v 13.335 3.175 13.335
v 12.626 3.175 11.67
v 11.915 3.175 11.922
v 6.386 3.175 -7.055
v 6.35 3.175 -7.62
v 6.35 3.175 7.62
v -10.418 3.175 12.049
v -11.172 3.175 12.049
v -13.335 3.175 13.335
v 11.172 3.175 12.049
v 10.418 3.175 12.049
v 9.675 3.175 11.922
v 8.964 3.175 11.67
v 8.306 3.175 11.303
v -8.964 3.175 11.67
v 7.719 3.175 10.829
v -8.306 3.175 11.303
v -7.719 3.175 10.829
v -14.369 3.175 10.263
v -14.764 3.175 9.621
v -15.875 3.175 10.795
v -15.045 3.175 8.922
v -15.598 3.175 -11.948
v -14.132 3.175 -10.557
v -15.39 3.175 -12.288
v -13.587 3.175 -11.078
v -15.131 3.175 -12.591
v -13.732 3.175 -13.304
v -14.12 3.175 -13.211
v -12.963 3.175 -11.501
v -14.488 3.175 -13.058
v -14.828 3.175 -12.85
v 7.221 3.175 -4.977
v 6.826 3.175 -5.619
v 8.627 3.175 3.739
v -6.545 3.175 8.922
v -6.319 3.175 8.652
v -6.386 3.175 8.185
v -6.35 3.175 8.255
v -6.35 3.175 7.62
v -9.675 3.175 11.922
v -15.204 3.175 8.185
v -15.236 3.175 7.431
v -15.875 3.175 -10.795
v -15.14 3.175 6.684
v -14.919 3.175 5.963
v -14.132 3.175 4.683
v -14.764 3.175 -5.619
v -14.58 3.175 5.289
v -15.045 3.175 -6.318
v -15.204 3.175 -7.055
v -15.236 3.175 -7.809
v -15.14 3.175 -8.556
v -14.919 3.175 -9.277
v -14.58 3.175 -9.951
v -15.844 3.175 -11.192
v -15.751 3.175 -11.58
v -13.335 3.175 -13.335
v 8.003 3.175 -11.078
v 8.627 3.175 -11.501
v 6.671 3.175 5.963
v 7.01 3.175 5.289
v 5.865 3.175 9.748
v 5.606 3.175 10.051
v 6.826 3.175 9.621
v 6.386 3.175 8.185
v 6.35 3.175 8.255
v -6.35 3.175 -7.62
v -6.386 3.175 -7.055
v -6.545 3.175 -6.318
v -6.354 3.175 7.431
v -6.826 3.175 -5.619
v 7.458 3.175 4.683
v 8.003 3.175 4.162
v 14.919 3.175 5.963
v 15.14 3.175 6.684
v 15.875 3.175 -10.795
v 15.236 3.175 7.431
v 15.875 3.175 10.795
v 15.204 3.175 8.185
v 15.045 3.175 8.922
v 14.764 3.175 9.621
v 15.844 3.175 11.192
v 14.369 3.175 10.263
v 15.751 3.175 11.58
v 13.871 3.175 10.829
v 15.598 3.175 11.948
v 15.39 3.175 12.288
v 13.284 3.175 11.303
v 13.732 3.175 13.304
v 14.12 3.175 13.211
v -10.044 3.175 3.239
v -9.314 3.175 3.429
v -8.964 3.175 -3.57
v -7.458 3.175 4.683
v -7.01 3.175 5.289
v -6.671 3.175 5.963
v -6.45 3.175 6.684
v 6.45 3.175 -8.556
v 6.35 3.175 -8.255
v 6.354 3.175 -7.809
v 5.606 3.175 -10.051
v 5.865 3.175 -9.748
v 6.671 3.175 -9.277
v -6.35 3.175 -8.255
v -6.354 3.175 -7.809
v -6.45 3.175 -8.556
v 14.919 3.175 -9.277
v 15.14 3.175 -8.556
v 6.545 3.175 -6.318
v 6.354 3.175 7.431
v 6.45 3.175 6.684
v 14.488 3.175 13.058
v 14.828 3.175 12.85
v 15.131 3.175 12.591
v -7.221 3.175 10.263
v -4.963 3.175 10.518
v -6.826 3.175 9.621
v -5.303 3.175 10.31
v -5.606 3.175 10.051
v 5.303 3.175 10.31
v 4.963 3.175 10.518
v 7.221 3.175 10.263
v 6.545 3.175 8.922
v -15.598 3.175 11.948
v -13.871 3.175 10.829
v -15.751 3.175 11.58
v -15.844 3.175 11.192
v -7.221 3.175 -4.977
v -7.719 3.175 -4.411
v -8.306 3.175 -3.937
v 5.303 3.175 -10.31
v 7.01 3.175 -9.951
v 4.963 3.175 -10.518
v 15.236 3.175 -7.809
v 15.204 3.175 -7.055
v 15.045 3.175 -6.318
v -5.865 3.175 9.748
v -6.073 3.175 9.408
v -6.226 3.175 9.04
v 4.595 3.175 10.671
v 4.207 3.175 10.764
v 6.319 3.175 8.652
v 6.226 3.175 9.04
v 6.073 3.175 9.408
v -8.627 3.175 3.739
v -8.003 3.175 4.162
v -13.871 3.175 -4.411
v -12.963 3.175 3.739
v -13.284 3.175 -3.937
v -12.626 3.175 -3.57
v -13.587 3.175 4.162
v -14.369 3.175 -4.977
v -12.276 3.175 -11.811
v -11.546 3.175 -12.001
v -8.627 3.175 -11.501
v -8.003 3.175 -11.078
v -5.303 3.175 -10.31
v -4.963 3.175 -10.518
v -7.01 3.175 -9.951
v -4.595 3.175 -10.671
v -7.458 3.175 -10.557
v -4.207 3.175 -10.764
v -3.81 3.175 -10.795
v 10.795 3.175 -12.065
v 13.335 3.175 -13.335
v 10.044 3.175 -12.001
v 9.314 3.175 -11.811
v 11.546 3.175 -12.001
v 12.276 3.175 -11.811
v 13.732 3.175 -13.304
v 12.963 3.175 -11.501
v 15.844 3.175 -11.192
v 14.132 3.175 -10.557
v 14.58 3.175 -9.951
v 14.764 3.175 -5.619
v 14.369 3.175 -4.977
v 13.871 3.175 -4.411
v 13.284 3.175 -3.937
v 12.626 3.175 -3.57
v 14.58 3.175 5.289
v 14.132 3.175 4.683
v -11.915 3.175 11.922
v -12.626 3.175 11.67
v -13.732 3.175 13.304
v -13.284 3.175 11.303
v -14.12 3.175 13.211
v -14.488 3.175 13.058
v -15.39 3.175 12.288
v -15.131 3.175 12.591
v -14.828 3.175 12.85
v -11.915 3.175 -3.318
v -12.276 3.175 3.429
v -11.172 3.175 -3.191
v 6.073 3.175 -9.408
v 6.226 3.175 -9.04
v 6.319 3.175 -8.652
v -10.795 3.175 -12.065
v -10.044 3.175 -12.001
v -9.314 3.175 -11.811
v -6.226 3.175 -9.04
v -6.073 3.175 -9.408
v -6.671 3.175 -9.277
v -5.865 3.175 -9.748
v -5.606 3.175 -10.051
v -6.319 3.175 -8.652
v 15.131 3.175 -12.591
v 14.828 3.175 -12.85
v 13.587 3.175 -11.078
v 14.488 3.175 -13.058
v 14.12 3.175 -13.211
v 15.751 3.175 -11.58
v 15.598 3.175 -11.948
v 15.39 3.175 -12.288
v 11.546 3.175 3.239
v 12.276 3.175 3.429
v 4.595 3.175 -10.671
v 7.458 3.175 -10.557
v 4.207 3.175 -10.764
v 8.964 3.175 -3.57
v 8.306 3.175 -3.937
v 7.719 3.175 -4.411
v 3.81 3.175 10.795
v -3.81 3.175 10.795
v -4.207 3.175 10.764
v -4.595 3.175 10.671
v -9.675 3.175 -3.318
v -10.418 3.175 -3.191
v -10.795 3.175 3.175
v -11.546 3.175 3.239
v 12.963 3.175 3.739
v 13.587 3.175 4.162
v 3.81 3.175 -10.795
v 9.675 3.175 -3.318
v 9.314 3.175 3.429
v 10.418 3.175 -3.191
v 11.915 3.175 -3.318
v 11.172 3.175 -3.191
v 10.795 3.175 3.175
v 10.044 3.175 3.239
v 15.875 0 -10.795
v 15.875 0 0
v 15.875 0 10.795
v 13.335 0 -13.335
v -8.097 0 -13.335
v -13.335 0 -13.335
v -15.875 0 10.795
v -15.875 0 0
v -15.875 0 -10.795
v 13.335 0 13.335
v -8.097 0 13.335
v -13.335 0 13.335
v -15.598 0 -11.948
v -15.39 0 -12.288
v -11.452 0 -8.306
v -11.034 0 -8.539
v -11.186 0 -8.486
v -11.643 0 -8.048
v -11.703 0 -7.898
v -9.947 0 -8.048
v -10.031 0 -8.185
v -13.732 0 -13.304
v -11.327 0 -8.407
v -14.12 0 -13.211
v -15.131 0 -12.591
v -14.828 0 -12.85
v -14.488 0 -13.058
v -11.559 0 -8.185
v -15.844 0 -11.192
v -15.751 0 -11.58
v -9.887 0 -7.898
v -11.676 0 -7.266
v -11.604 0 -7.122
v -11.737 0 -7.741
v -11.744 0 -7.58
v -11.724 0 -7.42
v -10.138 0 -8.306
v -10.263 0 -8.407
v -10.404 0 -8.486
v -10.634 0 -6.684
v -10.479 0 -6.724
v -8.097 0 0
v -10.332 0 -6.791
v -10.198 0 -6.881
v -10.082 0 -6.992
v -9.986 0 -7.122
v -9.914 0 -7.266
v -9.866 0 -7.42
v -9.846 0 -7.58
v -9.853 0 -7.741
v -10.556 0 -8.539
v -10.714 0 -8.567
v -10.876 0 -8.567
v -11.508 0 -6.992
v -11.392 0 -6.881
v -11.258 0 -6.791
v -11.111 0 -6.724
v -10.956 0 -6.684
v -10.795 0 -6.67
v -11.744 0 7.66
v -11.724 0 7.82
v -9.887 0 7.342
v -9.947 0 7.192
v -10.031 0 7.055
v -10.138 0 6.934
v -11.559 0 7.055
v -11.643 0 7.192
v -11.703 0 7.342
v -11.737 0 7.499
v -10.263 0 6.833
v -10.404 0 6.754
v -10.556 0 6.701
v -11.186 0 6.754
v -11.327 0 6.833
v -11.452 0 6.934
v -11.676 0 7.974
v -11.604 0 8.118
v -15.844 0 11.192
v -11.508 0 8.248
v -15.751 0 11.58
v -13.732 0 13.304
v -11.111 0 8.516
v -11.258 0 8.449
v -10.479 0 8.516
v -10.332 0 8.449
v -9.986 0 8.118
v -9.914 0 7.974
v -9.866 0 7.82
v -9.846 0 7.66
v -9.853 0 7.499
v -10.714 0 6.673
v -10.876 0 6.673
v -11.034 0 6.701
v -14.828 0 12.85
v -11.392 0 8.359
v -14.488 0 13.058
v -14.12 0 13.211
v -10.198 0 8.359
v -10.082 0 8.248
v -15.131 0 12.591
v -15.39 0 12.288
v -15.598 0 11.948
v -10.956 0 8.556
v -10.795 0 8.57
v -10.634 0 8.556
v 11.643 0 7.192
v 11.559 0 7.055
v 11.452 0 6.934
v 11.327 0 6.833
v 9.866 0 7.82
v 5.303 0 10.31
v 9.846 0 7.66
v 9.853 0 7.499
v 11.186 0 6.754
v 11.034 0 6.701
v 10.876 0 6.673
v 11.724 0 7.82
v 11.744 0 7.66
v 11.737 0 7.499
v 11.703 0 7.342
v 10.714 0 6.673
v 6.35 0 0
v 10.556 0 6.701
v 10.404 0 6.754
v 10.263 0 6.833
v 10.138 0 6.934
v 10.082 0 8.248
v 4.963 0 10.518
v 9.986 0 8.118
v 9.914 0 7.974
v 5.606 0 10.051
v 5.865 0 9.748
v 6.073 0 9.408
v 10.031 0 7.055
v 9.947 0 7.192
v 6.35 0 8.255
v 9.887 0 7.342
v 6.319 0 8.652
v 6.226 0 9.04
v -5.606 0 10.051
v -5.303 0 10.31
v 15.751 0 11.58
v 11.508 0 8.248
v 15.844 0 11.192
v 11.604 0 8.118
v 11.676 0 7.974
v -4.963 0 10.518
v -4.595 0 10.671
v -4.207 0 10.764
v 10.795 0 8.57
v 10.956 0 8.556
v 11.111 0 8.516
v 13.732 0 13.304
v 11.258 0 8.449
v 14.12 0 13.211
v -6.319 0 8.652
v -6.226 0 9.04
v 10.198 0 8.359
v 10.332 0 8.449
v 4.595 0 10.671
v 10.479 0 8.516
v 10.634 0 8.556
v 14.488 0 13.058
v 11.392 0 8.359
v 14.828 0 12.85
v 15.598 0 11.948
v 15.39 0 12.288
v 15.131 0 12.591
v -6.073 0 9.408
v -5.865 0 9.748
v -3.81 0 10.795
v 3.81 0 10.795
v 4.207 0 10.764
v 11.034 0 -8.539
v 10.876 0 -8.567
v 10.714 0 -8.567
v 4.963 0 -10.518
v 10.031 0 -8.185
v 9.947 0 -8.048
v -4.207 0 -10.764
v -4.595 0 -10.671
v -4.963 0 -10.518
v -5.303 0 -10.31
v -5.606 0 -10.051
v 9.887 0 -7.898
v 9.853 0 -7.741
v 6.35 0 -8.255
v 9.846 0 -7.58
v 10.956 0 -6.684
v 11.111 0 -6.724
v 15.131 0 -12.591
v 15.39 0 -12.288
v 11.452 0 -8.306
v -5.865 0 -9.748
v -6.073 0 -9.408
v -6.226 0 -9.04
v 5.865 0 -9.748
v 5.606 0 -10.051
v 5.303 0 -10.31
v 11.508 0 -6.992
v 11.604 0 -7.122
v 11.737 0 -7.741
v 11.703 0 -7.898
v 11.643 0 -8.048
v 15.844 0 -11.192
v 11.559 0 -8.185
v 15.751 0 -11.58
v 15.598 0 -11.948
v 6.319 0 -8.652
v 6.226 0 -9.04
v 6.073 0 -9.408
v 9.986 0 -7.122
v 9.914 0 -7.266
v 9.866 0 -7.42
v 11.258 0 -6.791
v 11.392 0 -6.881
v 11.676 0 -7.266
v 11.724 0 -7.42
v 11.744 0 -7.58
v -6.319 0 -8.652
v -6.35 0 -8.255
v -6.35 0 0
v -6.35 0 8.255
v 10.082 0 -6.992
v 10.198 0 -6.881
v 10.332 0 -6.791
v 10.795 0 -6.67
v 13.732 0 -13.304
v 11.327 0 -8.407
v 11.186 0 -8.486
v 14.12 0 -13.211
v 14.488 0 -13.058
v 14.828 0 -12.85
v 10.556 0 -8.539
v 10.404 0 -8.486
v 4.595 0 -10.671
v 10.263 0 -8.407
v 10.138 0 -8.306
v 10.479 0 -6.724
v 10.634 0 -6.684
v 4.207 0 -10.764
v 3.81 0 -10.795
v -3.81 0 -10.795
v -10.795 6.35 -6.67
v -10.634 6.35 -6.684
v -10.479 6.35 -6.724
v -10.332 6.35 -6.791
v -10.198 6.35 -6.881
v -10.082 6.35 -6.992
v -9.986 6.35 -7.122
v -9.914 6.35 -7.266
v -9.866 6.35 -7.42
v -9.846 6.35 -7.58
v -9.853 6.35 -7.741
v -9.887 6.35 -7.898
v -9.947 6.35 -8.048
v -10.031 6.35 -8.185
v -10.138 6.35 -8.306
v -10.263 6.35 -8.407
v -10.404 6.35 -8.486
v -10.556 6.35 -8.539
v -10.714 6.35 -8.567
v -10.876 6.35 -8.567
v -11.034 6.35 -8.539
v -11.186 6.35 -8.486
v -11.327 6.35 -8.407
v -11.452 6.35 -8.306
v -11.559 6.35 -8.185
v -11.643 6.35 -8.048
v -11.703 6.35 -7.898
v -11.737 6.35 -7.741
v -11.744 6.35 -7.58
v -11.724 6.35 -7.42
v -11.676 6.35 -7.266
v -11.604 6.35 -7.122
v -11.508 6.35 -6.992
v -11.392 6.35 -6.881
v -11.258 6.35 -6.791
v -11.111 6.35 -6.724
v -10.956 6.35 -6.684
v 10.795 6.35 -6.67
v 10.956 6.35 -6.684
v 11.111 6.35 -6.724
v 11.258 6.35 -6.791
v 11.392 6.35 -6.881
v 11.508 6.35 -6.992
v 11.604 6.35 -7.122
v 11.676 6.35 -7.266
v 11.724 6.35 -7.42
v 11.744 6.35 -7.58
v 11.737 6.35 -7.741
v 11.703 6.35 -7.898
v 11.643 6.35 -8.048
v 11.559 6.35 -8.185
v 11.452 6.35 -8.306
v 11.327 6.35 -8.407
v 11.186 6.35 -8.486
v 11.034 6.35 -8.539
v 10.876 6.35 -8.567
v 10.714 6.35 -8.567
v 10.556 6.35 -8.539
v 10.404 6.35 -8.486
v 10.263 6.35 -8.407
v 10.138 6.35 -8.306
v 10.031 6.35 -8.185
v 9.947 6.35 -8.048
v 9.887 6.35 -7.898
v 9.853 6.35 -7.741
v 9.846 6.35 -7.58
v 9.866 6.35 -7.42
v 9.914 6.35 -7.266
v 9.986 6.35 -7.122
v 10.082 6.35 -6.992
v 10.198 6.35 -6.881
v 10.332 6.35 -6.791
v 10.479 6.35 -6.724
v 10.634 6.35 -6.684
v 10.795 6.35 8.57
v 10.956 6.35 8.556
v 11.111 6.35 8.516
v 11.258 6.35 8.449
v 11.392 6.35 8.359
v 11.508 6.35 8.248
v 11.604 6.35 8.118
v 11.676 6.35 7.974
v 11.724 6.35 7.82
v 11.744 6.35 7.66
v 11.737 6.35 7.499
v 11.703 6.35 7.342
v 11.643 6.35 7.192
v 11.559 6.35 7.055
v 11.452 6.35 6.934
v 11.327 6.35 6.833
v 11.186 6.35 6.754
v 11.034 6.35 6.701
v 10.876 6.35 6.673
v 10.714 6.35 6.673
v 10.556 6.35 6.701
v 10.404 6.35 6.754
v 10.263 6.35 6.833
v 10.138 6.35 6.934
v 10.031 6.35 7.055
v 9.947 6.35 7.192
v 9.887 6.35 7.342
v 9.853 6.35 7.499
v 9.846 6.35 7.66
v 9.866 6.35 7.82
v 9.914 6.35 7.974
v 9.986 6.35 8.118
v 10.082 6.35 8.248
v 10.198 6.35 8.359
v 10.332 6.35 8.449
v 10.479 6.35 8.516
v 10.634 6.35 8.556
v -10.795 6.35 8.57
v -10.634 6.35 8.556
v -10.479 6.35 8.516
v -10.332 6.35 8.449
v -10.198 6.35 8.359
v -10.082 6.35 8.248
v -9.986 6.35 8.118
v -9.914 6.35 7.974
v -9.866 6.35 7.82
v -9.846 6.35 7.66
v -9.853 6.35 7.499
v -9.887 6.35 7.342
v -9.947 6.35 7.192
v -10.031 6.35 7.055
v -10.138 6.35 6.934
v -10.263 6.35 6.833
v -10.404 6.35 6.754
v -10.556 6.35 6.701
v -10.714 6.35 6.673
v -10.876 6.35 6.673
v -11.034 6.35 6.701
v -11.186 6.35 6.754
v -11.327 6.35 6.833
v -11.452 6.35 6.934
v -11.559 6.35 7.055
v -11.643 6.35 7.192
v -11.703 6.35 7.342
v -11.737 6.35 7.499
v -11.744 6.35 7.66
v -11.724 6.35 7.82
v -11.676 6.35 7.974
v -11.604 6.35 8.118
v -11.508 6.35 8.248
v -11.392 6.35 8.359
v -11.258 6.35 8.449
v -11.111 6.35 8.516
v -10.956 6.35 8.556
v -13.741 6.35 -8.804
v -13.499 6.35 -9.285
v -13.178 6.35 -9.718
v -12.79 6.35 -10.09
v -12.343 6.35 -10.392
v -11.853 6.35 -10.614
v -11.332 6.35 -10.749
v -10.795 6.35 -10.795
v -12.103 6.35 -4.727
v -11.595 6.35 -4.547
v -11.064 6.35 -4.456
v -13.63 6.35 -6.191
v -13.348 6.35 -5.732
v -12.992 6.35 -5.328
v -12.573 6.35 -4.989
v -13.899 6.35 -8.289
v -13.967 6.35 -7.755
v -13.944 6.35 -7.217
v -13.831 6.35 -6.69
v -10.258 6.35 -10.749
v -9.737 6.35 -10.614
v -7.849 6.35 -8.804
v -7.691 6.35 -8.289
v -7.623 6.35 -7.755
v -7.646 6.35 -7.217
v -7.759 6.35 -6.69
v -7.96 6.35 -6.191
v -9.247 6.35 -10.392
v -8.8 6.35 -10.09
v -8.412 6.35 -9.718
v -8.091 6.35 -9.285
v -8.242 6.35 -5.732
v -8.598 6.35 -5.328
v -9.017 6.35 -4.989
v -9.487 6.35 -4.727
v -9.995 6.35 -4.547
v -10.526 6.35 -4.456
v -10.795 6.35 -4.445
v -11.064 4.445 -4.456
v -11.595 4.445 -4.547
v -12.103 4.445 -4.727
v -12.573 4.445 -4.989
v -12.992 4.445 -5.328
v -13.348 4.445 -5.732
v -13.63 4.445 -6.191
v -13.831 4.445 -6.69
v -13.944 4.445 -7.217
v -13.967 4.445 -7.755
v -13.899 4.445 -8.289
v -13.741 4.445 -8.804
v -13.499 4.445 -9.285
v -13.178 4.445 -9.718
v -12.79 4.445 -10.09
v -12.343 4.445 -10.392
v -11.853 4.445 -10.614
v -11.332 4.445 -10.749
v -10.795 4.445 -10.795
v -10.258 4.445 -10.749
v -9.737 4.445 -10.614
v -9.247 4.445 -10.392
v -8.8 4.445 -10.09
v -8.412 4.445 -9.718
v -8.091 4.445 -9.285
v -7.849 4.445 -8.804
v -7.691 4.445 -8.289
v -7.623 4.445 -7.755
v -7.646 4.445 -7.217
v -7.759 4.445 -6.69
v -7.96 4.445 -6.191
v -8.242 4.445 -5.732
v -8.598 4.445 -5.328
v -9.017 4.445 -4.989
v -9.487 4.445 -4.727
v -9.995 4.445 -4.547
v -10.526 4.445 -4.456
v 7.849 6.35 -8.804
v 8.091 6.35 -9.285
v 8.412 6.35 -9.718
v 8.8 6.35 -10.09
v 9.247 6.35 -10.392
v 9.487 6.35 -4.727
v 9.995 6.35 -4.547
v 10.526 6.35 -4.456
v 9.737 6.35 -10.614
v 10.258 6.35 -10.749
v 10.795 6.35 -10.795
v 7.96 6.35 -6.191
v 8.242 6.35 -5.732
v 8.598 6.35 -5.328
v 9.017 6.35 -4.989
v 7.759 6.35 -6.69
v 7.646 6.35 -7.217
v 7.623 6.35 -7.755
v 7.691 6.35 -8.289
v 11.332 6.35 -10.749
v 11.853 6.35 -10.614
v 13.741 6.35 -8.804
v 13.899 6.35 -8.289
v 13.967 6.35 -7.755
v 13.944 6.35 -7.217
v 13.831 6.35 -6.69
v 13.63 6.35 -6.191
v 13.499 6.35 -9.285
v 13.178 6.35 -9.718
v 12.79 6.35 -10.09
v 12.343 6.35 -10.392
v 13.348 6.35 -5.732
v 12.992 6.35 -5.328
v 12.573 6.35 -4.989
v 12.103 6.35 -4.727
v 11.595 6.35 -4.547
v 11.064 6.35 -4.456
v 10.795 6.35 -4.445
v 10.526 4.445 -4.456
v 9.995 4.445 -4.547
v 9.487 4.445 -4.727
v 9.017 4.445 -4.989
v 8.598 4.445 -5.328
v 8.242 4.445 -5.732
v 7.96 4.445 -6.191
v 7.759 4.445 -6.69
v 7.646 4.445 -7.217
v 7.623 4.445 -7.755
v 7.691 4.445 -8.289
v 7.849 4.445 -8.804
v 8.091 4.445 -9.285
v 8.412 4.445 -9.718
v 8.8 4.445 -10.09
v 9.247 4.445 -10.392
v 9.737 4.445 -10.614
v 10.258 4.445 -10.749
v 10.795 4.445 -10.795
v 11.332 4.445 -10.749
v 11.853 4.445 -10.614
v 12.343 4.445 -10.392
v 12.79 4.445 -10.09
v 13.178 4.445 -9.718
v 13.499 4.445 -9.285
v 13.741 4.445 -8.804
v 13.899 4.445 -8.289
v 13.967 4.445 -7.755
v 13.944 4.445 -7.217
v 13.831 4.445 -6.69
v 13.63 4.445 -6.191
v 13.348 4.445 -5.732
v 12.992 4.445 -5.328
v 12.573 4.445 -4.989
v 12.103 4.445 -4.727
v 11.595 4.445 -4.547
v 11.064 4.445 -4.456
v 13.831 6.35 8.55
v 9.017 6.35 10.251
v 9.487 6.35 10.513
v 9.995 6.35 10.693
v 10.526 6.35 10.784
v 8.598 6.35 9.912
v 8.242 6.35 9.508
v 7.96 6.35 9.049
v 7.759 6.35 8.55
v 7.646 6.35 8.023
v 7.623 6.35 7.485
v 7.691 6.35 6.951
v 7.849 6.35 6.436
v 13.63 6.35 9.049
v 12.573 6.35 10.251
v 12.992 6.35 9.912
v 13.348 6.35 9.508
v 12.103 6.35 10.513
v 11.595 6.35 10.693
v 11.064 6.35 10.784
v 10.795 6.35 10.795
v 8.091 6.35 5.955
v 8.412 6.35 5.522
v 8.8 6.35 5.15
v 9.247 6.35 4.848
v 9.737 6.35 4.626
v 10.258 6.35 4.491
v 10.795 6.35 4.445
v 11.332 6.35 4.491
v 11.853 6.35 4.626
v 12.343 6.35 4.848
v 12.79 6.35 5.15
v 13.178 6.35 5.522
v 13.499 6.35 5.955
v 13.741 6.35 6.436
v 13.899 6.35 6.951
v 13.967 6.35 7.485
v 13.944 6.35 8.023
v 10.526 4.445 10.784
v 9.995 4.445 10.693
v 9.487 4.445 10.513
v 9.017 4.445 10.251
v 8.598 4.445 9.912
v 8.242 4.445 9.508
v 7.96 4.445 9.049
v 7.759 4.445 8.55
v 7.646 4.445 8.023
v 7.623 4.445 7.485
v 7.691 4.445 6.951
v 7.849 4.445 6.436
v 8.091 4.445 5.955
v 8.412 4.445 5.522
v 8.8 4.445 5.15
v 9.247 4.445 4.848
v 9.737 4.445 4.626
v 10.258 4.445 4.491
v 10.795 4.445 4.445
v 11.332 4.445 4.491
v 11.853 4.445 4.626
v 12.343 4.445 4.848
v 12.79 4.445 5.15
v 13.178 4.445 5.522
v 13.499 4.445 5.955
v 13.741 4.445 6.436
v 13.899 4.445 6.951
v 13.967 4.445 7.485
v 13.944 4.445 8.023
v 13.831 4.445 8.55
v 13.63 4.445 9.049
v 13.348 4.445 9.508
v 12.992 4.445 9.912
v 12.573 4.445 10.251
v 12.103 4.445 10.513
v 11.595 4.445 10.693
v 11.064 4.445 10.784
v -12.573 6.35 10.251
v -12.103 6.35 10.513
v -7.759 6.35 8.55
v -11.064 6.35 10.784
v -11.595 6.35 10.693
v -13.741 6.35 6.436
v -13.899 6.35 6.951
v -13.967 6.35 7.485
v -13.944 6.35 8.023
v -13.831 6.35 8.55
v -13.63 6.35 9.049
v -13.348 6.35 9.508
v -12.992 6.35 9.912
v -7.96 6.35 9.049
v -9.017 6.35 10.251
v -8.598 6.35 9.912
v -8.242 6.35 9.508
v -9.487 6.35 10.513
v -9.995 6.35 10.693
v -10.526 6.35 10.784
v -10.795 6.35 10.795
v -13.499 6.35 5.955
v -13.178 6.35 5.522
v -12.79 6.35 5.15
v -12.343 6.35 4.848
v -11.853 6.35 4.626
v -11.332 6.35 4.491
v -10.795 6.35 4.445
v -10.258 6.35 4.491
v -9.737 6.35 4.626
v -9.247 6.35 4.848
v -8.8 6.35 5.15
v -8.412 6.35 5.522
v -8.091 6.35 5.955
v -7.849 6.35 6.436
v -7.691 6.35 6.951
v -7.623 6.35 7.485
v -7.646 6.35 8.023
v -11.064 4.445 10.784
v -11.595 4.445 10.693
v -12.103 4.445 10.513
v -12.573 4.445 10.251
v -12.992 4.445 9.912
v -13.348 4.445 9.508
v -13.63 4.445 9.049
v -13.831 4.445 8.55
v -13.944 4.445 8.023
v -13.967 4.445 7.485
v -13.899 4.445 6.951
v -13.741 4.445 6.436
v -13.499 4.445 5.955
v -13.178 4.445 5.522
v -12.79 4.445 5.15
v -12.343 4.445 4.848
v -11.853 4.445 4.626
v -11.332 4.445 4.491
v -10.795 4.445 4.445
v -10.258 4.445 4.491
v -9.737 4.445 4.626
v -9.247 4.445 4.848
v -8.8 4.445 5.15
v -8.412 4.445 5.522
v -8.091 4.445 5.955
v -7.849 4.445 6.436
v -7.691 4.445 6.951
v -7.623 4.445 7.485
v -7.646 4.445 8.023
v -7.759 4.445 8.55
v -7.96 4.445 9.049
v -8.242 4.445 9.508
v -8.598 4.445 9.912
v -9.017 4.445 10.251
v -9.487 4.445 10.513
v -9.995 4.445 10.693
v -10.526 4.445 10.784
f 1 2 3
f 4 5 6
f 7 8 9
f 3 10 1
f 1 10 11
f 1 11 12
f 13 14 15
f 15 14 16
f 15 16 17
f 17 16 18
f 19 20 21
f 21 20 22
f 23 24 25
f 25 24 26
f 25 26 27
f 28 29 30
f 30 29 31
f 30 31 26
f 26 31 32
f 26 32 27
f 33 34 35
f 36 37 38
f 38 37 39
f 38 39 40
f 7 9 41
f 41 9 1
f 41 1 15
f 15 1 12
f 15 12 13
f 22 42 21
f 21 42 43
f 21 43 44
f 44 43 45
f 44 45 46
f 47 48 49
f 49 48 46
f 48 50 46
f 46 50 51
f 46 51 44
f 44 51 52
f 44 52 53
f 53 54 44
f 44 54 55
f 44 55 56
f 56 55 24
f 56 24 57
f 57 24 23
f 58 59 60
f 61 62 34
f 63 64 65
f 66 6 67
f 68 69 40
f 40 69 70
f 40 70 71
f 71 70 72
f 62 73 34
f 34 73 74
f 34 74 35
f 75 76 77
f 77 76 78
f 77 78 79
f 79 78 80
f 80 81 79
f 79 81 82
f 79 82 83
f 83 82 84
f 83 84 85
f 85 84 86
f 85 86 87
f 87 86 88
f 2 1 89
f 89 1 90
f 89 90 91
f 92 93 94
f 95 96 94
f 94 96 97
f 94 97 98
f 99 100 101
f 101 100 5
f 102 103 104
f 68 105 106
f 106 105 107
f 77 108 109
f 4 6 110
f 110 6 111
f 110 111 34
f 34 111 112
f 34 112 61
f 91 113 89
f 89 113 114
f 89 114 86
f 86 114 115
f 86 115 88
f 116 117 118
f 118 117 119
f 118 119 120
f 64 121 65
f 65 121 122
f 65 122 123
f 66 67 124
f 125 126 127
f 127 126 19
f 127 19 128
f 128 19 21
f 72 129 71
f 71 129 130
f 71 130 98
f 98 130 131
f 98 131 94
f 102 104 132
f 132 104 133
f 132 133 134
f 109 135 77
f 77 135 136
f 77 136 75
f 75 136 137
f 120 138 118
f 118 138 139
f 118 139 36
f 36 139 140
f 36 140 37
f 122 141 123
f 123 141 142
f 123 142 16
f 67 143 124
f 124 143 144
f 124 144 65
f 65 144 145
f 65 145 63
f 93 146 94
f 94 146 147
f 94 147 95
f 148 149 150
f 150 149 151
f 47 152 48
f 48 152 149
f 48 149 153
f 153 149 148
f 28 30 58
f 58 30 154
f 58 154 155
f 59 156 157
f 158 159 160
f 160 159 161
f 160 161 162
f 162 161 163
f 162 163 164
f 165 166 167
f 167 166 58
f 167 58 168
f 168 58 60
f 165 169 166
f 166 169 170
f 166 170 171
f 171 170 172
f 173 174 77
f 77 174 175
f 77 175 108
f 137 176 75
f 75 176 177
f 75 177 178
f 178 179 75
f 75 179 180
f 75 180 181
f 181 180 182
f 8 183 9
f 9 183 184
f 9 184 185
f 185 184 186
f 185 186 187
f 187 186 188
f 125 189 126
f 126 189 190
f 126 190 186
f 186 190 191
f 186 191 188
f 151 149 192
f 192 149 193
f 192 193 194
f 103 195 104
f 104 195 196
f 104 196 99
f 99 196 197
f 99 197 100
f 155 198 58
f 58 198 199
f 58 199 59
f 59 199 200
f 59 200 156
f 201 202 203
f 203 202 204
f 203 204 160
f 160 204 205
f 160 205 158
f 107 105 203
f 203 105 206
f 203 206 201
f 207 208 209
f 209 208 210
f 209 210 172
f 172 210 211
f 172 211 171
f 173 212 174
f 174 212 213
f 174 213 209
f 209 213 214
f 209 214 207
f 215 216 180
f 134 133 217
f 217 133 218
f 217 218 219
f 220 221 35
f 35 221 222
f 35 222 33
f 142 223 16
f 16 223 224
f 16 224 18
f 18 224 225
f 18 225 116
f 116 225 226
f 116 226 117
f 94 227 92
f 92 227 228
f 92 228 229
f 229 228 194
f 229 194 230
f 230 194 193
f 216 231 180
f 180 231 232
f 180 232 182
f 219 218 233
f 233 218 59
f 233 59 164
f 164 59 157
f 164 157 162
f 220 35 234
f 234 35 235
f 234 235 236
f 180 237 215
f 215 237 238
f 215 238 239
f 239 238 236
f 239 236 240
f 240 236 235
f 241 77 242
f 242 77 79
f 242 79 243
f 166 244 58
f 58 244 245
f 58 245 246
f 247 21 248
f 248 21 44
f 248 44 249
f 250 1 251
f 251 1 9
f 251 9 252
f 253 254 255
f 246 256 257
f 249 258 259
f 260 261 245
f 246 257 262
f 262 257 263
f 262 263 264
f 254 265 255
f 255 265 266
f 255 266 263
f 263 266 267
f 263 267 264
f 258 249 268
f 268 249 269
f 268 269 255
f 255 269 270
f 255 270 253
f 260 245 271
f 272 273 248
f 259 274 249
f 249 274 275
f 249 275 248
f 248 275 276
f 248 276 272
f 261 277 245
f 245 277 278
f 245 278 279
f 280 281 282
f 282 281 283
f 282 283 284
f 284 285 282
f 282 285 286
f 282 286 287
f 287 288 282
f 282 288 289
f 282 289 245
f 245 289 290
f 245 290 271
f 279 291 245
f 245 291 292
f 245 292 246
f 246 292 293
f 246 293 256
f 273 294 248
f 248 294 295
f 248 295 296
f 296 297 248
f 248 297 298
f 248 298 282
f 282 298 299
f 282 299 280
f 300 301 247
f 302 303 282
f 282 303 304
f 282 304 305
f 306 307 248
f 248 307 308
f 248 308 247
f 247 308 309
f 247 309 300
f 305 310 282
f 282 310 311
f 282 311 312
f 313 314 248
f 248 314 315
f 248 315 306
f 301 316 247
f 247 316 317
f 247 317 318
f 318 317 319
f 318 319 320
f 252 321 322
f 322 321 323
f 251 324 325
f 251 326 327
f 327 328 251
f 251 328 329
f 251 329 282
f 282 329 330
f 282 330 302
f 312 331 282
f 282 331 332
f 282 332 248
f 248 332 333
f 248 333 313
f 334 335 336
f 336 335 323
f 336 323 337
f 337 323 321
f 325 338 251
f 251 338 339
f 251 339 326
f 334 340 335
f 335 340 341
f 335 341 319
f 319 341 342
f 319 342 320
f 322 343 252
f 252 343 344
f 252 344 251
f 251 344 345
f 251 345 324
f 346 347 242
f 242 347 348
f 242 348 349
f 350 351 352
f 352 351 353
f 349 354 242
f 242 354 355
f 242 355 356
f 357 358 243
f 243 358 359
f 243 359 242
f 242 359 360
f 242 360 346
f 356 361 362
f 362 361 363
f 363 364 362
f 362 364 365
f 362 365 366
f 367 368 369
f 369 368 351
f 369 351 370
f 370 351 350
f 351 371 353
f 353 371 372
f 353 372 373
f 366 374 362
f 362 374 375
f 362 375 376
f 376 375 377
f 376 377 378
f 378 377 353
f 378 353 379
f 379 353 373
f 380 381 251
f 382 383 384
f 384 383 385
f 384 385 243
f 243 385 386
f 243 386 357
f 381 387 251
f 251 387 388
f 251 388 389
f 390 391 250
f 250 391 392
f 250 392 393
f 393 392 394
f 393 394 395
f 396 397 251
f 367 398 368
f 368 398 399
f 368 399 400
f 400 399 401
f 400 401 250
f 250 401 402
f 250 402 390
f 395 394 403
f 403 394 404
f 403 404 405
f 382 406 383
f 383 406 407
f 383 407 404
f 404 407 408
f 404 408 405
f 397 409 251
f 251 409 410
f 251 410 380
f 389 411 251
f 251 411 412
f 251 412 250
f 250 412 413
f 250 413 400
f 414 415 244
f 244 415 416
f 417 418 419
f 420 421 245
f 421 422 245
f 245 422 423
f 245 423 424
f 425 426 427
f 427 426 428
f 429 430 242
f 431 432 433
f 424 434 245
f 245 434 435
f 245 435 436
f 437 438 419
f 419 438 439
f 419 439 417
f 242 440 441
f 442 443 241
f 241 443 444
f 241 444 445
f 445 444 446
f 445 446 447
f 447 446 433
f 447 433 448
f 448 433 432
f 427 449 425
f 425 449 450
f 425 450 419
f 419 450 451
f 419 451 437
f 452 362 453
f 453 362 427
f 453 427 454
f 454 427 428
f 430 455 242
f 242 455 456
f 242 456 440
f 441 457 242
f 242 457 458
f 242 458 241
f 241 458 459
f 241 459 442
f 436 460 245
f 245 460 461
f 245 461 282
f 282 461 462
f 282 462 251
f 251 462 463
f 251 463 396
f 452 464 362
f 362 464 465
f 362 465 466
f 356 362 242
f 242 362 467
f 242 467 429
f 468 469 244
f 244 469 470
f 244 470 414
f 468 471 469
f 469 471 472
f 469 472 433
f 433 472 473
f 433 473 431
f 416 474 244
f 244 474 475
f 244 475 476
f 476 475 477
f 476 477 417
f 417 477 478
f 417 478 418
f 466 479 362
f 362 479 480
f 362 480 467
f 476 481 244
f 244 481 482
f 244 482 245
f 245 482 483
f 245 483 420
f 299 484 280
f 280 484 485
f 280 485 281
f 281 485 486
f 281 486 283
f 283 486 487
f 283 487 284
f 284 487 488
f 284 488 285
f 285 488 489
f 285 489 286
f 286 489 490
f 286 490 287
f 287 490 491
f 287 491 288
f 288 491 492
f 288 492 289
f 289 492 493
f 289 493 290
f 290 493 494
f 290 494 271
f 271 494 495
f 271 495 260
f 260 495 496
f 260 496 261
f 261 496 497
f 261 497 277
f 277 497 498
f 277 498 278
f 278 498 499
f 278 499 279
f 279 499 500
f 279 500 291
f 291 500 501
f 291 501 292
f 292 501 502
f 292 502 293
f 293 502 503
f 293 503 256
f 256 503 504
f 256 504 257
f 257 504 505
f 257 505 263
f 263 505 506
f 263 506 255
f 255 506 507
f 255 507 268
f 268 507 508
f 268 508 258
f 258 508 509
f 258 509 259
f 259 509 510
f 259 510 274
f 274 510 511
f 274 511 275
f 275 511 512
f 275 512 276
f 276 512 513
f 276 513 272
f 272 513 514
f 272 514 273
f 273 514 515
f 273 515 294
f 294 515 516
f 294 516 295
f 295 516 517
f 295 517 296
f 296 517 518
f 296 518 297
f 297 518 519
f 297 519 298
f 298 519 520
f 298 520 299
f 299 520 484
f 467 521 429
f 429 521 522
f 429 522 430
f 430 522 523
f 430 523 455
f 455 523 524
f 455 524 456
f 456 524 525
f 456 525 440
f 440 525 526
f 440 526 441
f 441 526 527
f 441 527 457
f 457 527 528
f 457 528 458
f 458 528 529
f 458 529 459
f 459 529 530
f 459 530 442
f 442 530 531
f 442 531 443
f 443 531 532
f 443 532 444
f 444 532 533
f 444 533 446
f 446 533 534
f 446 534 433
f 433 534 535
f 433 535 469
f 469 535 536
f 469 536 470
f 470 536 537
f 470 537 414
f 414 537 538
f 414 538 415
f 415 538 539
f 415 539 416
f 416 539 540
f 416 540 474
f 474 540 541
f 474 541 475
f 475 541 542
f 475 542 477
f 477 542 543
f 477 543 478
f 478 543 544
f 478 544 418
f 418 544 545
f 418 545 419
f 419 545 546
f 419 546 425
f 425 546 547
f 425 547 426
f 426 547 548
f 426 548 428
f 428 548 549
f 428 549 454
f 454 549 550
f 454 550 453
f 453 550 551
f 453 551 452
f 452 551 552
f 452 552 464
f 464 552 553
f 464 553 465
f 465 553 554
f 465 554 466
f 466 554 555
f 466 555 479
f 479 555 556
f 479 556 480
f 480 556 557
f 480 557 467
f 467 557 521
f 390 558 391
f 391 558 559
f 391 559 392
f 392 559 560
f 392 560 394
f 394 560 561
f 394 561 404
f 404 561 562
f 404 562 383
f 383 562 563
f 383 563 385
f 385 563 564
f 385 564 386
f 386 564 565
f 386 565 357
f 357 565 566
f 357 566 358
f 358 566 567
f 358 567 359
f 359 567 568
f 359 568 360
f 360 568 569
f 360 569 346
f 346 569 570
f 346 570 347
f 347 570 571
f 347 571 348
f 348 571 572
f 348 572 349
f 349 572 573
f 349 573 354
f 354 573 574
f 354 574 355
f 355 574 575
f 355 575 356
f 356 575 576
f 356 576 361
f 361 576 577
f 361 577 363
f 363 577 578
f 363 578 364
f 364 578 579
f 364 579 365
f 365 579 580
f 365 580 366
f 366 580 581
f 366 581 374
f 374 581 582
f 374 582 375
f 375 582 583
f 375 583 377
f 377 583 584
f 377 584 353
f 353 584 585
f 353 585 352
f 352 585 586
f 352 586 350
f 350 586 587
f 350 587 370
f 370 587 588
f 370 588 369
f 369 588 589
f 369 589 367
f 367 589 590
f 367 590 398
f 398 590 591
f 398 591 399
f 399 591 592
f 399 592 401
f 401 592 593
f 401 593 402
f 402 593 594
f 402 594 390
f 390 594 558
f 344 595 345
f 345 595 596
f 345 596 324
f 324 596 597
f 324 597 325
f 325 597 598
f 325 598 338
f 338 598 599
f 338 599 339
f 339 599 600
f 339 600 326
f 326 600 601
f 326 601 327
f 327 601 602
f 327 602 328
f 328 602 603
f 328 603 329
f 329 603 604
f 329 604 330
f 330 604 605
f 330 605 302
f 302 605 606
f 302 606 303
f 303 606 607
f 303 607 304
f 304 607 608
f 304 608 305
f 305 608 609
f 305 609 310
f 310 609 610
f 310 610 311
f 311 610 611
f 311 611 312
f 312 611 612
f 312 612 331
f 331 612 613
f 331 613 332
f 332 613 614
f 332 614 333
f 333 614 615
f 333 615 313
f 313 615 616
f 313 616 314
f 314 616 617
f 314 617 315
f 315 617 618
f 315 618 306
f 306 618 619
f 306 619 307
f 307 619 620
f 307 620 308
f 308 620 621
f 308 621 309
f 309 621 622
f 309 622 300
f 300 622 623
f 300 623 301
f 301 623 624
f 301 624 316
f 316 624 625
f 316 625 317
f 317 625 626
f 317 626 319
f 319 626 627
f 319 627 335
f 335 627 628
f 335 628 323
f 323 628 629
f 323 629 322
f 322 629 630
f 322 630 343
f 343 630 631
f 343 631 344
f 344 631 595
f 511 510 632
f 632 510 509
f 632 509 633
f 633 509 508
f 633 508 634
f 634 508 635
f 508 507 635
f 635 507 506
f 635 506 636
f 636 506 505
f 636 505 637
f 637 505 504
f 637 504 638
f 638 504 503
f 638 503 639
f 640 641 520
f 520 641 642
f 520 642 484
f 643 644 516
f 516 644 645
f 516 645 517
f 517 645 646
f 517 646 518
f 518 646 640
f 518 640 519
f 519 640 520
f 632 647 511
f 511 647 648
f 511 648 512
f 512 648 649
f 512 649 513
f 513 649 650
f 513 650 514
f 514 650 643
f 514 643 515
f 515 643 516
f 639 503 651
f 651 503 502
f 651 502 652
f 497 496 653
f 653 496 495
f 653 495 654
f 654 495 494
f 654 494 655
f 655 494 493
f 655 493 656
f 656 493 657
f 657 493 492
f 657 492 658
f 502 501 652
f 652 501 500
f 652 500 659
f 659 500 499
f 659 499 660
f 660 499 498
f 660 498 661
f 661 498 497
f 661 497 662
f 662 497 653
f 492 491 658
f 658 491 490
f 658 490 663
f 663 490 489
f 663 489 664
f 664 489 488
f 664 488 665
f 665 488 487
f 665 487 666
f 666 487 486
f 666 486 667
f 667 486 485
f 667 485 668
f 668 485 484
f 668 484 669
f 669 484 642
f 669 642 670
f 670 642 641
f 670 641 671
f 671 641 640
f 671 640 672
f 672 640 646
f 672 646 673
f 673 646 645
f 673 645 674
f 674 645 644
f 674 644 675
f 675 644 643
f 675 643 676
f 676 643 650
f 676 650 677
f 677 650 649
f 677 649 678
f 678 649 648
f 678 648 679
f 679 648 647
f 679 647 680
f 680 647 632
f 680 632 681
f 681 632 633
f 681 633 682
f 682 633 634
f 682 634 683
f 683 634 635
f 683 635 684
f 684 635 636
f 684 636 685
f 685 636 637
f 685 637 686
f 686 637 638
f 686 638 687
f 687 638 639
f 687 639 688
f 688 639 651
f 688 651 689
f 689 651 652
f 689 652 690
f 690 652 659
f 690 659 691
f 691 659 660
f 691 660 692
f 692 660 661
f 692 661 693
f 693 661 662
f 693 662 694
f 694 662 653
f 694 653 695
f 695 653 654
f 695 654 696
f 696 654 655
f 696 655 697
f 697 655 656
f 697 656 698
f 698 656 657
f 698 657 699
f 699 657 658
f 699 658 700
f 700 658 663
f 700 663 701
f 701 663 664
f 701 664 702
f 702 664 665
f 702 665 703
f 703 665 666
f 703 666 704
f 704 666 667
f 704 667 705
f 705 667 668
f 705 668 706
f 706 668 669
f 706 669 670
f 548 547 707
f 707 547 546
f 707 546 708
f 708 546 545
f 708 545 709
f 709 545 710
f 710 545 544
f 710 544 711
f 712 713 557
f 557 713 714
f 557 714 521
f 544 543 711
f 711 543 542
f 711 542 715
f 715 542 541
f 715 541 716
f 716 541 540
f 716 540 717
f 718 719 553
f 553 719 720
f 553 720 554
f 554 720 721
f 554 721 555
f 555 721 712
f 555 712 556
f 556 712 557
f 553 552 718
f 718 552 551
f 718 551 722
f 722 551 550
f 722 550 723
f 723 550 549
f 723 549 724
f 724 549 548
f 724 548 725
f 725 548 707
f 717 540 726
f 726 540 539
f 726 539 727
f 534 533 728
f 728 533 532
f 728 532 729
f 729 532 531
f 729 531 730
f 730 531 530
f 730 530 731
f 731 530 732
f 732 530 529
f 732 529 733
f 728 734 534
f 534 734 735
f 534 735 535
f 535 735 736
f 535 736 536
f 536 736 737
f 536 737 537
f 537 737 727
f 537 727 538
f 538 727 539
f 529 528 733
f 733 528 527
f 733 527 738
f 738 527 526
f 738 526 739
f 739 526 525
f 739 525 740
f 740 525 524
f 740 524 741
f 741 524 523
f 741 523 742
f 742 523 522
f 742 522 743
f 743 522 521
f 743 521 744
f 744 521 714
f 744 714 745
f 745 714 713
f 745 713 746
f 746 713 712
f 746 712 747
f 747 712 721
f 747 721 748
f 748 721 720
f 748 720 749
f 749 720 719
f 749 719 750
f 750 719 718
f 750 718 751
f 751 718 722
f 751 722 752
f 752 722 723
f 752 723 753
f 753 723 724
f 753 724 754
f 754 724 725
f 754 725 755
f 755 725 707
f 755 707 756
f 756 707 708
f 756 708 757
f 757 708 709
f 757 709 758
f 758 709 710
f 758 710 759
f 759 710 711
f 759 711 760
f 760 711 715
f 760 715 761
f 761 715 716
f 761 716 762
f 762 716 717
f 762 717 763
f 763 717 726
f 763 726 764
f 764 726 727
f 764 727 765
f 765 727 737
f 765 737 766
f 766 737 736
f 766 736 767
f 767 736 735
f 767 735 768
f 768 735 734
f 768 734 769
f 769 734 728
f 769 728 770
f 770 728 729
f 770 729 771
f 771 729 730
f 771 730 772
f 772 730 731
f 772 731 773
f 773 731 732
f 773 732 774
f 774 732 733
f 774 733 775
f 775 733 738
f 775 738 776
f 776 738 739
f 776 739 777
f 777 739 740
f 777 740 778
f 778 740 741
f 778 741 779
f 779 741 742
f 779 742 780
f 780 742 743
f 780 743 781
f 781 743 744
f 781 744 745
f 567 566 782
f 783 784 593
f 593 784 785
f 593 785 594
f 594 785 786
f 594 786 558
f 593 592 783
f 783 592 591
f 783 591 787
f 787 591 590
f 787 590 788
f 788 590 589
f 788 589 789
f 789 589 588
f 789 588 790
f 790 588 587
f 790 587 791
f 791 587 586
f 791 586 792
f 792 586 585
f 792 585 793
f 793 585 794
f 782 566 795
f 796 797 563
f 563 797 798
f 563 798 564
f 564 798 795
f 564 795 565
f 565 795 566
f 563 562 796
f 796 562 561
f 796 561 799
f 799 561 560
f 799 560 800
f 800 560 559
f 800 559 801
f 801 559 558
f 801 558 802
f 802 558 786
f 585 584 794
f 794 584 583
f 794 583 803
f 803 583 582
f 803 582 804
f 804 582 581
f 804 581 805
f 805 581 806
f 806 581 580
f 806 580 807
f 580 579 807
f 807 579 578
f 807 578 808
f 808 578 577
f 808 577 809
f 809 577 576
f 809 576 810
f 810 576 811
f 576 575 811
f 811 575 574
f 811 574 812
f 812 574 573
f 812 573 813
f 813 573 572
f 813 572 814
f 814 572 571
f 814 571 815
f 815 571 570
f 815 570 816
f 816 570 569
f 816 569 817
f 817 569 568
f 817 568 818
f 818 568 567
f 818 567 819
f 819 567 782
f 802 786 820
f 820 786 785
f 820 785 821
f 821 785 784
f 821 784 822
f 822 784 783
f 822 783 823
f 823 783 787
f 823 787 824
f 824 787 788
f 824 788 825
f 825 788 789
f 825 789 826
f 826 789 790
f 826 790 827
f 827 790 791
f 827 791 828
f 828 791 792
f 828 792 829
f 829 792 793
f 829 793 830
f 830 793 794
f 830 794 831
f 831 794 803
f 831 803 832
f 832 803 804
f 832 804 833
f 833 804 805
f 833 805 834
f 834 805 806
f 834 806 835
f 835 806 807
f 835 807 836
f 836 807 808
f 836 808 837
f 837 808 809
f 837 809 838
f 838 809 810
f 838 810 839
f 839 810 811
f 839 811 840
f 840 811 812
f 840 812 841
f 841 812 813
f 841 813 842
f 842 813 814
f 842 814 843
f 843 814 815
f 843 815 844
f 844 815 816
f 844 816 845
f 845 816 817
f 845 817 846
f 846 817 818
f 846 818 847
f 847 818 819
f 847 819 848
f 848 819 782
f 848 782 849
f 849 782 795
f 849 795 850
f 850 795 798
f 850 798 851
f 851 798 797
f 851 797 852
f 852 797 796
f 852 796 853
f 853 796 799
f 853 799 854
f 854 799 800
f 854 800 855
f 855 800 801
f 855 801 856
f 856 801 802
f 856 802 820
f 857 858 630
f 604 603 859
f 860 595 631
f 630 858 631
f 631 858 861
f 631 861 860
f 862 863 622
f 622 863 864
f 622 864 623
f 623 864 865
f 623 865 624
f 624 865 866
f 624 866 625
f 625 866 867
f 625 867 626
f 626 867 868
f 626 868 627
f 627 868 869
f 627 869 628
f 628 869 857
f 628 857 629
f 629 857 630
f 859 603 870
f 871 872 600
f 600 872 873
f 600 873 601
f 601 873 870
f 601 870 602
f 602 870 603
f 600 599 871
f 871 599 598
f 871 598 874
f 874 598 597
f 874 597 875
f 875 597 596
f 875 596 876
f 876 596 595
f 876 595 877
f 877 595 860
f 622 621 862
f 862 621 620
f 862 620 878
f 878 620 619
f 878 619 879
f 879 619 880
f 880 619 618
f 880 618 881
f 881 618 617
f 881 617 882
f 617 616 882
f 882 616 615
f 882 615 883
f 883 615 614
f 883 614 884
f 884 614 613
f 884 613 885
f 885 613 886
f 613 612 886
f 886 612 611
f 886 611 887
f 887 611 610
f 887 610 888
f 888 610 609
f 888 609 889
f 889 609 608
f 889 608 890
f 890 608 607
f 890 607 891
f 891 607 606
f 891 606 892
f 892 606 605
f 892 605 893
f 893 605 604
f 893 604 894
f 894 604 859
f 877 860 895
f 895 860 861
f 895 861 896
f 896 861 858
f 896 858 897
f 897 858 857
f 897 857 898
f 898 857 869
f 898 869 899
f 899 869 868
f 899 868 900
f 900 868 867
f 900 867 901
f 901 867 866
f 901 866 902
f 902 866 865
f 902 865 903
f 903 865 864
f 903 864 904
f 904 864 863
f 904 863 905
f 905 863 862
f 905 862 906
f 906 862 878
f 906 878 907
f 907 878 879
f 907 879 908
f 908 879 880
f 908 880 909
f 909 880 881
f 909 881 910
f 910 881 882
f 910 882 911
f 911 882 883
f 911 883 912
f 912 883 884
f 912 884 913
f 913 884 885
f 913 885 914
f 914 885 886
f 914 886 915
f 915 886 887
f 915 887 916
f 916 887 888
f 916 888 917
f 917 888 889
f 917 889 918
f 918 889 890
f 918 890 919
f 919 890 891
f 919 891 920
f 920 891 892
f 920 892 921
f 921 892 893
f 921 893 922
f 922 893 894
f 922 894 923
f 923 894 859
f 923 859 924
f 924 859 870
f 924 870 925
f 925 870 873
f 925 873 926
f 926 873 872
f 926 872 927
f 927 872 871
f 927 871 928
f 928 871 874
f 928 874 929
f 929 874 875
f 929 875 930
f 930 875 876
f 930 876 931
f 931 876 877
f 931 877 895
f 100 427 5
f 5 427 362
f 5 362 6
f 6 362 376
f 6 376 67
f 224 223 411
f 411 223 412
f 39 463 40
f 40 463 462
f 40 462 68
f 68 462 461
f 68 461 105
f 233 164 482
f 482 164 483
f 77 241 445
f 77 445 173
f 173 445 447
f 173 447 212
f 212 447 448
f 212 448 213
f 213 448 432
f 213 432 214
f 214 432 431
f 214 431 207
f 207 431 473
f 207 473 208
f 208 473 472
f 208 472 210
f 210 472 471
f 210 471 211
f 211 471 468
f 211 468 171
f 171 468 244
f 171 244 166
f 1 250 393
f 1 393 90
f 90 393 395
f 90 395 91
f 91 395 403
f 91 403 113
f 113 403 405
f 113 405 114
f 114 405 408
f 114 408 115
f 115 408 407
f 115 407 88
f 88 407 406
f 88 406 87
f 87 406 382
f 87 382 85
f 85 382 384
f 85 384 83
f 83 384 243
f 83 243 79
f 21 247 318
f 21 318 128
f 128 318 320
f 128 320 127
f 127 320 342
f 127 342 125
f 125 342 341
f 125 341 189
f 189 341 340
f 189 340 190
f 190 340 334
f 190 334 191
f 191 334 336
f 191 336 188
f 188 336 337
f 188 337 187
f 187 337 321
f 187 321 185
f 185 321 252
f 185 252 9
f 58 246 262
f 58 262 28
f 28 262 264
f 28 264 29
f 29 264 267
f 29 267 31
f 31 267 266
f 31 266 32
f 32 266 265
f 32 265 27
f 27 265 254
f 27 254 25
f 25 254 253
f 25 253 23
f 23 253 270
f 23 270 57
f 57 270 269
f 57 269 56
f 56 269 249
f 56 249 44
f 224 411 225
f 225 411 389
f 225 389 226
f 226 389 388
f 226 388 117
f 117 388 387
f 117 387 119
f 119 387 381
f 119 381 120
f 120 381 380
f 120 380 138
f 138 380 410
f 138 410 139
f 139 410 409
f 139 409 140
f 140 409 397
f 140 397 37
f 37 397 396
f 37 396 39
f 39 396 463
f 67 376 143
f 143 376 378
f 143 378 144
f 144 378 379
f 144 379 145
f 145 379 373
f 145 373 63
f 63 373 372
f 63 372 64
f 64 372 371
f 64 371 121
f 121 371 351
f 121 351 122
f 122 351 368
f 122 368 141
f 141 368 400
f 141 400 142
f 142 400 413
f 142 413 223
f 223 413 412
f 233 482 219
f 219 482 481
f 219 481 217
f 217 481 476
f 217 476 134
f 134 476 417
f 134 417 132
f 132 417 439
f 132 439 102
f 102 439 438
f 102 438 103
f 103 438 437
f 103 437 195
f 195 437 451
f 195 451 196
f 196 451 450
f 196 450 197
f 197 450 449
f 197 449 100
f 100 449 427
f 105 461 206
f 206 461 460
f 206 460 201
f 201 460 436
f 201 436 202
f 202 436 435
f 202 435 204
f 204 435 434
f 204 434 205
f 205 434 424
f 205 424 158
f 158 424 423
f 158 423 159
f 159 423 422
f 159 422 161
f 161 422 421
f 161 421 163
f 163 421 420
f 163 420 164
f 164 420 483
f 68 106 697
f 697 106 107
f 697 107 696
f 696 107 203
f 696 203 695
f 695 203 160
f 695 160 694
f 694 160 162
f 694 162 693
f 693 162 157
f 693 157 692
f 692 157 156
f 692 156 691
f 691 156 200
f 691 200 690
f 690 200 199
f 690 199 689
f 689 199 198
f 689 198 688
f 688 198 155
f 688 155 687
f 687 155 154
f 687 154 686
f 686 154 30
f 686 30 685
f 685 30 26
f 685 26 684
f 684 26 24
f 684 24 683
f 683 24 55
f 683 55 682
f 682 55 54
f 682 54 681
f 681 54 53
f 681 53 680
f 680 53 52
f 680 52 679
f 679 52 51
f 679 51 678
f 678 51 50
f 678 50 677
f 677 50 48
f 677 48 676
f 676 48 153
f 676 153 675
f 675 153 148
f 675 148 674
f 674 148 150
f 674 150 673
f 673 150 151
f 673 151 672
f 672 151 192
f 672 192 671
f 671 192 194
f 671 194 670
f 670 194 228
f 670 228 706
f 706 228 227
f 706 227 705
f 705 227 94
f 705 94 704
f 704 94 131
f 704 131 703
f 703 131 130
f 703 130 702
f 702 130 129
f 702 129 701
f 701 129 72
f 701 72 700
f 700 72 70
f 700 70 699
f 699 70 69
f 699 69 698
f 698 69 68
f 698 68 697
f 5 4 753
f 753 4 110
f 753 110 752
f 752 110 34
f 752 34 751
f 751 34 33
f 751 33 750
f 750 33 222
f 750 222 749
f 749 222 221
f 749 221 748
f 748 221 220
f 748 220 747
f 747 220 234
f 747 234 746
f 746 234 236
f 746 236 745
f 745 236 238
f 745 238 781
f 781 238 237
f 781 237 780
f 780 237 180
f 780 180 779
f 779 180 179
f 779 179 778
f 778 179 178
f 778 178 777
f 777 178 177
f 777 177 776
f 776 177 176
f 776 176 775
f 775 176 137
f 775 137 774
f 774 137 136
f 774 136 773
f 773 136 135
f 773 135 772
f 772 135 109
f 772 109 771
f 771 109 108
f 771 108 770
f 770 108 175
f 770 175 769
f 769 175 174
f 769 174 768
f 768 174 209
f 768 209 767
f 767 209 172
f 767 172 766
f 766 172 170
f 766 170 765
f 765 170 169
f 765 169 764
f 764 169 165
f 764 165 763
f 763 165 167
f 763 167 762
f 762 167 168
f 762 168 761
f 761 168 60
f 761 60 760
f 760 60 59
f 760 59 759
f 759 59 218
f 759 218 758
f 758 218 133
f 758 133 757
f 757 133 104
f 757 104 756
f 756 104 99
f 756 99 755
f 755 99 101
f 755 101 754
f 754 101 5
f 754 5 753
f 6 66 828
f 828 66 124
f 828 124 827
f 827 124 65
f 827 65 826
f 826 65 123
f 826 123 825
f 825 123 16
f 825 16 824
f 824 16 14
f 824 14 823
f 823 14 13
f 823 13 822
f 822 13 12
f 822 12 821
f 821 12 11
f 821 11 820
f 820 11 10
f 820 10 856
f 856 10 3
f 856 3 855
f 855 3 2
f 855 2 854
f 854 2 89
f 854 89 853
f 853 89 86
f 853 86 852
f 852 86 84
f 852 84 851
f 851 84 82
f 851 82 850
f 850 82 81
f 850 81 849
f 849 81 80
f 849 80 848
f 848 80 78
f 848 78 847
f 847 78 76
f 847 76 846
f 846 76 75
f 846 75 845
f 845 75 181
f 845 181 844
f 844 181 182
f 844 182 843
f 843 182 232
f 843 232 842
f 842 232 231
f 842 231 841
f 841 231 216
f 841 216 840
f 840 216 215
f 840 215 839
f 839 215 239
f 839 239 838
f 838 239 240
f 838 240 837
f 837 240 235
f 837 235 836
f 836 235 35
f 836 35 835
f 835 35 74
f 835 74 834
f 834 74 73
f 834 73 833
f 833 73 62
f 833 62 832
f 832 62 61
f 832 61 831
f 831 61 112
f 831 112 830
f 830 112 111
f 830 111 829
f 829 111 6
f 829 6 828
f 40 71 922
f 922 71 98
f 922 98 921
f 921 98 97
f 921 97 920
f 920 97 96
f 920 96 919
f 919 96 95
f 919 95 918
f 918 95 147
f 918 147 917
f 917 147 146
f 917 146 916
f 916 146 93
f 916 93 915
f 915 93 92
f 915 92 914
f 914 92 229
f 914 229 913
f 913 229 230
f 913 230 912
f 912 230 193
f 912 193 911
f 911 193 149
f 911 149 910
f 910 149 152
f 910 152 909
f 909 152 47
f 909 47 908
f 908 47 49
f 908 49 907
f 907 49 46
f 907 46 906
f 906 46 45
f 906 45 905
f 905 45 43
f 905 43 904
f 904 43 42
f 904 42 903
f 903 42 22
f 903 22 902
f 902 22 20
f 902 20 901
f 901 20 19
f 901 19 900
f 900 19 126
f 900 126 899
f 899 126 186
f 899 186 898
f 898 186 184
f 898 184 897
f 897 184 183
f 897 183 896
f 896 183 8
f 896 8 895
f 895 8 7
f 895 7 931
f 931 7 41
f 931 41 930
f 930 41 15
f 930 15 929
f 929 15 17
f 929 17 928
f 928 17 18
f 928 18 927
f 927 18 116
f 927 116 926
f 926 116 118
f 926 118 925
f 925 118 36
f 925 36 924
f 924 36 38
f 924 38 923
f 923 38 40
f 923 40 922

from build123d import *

# Parameters (mm, degrees)
SKETCH1_W           = 31.75
SKETCH1_H           = 26.67
BOSS_EXTRUDE1_DEPTH = 3.175
SKETCH2_R           = 0.95
CUT_EXTRUDE1_DEPTH  = 21.974233597
BOSS_EXTRUDE2_START = 3.175
SKETCH3_R           = 3.175
SKETCH3_R_2         = 0.95
BOSS_EXTRUDE2_DEPTH = 3.175
SKETCH4_W           = 12.7
SKETCH4_H           = 21.59
CUT_EXTRUDE2_DEPTH  = 21.974233597
FILLET1_R           = 2.54
CHAMFER1_SIZE       = 1.27


with BuildPart() as part:
    # Sketch1 → Boss-Extrude1 (new body)
    with BuildSketch(Plane(origin=(0, 0, 0), x_dir=(1, 0, 0), z_dir=(0, 1, 0))):
        Rectangle(SKETCH1_W, SKETCH1_H)
    extrude(amount=BOSS_EXTRUDE1_DEPTH)

    # Sketch2 → Cut-Extrude1 (cut, through all)
    with BuildSketch(Plane(origin=(0, 3.175, 0), x_dir=(1, 0, 0), z_dir=(0, 1, 0))):
        with Locations(Location((-10.795, 7.62, 0), (0, 0, 270))):
            Circle(SKETCH2_R)
        with Locations(Location((10.795, 7.62, 0), (0, 0, 270))):
            Circle(SKETCH2_R)
        with Locations(Location((10.795, -7.62, 0), (0, 0, 270))):
            Circle(SKETCH2_R)
        with Locations(Location((-10.795, -7.62, 0), (0, 0, 270))):
            Circle(SKETCH2_R)
    extrude(amount=-CUT_EXTRUDE1_DEPTH, mode=Mode.SUBTRACT)

    # Sketch3 → Boss-Extrude2 (add)
    # profile 1 of 4: a face of its own
    with BuildSketch(Plane(origin=(0, 3.175, 0), x_dir=(1, 0, 0), z_dir=(0, 1, 0)).offset(BOSS_EXTRUDE2_START)):
        with Locations(Location((-10.795, 7.62, 0), (0, 0, 90))):
            Circle(SKETCH3_R)
        with Locations(Location((-10.795, 7.62, 0), (0, 0, 270))):
            Circle(SKETCH3_R_2, mode=Mode.SUBTRACT)
    # profile 2 of 4: a face of its own
    with BuildSketch(Plane(origin=(0, 3.175, 0), x_dir=(1, 0, 0), z_dir=(0, 1, 0)).offset(BOSS_EXTRUDE2_START)):
        with Locations(Location((10.795, 7.62, 0), (0, 0, 90))):
            Circle(SKETCH3_R)
        with Locations(Location((10.795, 7.62, 0), (0, 0, 270))):
            Circle(SKETCH3_R_2, mode=Mode.SUBTRACT)
    # profile 3 of 4: a face of its own
    with BuildSketch(Plane(origin=(0, 3.175, 0), x_dir=(1, 0, 0), z_dir=(0, 1, 0)).offset(BOSS_EXTRUDE2_START)):
        with Locations(Location((10.795, -7.62, 0), (0, 0, 90))):
            Circle(SKETCH3_R)
        with Locations(Location((10.795, -7.62, 0), (0, 0, 270))):
            Circle(SKETCH3_R_2, mode=Mode.SUBTRACT)
    # profile 4 of 4: a face of its own
    with BuildSketch(Plane(origin=(0, 3.175, 0), x_dir=(1, 0, 0), z_dir=(0, 1, 0)).offset(BOSS_EXTRUDE2_START)):
        with Locations(Location((-10.795, -7.62, 0), (0, 0, 90))):
            Circle(SKETCH3_R)
        with Locations(Location((-10.795, -7.62, 0), (0, 0, 270))):
            Circle(SKETCH3_R_2, mode=Mode.SUBTRACT)
    extrude(amount=-BOSS_EXTRUDE2_DEPTH)

    # Sketch4 → Cut-Extrude2 (cut, through all)
    with BuildSketch(Plane(origin=(0, 3.175, 0), x_dir=(1, 0, 0), z_dir=(0, 1, 0))):
        Rectangle(SKETCH4_W, SKETCH4_H)
    extrude(amount=-CUT_EXTRUDE2_DEPTH, mode=Mode.SUBTRACT)

    # Fillet1
    fillet1_edges = [part.edges().sort_by_distance(p)[0] for p in [
        (6.35, 1.5875, -10.795),
        (6.35, 1.5875, 10.795),
        (-6.35, 1.5875, 10.795),
        (-6.35, 1.5875, -10.795),
        (15.875, 1.5875, 13.335),
        (-15.875, 1.5875, 13.335),
        (-15.875, 1.5875, -13.335),
        (15.875, 1.5875, -13.335),
    ]]
    fillet(fillet1_edges, radius=FILLET1_R)

    # Chamfer1
    chamfer1_edges = [part.edges().sort_by_distance(p)[0] for p in [
        (-10.795, 3.175, -4.445),
        (10.795, 3.175, -4.445),
        (10.795, 3.175, 10.795),
        (-10.795, 3.175, 10.795),
    ]]
    chamfer(chamfer1_edges, length=CHAMFER1_SIZE - 0.0001)  # a hair under: the kernel refuses the full size


solid = part.part
